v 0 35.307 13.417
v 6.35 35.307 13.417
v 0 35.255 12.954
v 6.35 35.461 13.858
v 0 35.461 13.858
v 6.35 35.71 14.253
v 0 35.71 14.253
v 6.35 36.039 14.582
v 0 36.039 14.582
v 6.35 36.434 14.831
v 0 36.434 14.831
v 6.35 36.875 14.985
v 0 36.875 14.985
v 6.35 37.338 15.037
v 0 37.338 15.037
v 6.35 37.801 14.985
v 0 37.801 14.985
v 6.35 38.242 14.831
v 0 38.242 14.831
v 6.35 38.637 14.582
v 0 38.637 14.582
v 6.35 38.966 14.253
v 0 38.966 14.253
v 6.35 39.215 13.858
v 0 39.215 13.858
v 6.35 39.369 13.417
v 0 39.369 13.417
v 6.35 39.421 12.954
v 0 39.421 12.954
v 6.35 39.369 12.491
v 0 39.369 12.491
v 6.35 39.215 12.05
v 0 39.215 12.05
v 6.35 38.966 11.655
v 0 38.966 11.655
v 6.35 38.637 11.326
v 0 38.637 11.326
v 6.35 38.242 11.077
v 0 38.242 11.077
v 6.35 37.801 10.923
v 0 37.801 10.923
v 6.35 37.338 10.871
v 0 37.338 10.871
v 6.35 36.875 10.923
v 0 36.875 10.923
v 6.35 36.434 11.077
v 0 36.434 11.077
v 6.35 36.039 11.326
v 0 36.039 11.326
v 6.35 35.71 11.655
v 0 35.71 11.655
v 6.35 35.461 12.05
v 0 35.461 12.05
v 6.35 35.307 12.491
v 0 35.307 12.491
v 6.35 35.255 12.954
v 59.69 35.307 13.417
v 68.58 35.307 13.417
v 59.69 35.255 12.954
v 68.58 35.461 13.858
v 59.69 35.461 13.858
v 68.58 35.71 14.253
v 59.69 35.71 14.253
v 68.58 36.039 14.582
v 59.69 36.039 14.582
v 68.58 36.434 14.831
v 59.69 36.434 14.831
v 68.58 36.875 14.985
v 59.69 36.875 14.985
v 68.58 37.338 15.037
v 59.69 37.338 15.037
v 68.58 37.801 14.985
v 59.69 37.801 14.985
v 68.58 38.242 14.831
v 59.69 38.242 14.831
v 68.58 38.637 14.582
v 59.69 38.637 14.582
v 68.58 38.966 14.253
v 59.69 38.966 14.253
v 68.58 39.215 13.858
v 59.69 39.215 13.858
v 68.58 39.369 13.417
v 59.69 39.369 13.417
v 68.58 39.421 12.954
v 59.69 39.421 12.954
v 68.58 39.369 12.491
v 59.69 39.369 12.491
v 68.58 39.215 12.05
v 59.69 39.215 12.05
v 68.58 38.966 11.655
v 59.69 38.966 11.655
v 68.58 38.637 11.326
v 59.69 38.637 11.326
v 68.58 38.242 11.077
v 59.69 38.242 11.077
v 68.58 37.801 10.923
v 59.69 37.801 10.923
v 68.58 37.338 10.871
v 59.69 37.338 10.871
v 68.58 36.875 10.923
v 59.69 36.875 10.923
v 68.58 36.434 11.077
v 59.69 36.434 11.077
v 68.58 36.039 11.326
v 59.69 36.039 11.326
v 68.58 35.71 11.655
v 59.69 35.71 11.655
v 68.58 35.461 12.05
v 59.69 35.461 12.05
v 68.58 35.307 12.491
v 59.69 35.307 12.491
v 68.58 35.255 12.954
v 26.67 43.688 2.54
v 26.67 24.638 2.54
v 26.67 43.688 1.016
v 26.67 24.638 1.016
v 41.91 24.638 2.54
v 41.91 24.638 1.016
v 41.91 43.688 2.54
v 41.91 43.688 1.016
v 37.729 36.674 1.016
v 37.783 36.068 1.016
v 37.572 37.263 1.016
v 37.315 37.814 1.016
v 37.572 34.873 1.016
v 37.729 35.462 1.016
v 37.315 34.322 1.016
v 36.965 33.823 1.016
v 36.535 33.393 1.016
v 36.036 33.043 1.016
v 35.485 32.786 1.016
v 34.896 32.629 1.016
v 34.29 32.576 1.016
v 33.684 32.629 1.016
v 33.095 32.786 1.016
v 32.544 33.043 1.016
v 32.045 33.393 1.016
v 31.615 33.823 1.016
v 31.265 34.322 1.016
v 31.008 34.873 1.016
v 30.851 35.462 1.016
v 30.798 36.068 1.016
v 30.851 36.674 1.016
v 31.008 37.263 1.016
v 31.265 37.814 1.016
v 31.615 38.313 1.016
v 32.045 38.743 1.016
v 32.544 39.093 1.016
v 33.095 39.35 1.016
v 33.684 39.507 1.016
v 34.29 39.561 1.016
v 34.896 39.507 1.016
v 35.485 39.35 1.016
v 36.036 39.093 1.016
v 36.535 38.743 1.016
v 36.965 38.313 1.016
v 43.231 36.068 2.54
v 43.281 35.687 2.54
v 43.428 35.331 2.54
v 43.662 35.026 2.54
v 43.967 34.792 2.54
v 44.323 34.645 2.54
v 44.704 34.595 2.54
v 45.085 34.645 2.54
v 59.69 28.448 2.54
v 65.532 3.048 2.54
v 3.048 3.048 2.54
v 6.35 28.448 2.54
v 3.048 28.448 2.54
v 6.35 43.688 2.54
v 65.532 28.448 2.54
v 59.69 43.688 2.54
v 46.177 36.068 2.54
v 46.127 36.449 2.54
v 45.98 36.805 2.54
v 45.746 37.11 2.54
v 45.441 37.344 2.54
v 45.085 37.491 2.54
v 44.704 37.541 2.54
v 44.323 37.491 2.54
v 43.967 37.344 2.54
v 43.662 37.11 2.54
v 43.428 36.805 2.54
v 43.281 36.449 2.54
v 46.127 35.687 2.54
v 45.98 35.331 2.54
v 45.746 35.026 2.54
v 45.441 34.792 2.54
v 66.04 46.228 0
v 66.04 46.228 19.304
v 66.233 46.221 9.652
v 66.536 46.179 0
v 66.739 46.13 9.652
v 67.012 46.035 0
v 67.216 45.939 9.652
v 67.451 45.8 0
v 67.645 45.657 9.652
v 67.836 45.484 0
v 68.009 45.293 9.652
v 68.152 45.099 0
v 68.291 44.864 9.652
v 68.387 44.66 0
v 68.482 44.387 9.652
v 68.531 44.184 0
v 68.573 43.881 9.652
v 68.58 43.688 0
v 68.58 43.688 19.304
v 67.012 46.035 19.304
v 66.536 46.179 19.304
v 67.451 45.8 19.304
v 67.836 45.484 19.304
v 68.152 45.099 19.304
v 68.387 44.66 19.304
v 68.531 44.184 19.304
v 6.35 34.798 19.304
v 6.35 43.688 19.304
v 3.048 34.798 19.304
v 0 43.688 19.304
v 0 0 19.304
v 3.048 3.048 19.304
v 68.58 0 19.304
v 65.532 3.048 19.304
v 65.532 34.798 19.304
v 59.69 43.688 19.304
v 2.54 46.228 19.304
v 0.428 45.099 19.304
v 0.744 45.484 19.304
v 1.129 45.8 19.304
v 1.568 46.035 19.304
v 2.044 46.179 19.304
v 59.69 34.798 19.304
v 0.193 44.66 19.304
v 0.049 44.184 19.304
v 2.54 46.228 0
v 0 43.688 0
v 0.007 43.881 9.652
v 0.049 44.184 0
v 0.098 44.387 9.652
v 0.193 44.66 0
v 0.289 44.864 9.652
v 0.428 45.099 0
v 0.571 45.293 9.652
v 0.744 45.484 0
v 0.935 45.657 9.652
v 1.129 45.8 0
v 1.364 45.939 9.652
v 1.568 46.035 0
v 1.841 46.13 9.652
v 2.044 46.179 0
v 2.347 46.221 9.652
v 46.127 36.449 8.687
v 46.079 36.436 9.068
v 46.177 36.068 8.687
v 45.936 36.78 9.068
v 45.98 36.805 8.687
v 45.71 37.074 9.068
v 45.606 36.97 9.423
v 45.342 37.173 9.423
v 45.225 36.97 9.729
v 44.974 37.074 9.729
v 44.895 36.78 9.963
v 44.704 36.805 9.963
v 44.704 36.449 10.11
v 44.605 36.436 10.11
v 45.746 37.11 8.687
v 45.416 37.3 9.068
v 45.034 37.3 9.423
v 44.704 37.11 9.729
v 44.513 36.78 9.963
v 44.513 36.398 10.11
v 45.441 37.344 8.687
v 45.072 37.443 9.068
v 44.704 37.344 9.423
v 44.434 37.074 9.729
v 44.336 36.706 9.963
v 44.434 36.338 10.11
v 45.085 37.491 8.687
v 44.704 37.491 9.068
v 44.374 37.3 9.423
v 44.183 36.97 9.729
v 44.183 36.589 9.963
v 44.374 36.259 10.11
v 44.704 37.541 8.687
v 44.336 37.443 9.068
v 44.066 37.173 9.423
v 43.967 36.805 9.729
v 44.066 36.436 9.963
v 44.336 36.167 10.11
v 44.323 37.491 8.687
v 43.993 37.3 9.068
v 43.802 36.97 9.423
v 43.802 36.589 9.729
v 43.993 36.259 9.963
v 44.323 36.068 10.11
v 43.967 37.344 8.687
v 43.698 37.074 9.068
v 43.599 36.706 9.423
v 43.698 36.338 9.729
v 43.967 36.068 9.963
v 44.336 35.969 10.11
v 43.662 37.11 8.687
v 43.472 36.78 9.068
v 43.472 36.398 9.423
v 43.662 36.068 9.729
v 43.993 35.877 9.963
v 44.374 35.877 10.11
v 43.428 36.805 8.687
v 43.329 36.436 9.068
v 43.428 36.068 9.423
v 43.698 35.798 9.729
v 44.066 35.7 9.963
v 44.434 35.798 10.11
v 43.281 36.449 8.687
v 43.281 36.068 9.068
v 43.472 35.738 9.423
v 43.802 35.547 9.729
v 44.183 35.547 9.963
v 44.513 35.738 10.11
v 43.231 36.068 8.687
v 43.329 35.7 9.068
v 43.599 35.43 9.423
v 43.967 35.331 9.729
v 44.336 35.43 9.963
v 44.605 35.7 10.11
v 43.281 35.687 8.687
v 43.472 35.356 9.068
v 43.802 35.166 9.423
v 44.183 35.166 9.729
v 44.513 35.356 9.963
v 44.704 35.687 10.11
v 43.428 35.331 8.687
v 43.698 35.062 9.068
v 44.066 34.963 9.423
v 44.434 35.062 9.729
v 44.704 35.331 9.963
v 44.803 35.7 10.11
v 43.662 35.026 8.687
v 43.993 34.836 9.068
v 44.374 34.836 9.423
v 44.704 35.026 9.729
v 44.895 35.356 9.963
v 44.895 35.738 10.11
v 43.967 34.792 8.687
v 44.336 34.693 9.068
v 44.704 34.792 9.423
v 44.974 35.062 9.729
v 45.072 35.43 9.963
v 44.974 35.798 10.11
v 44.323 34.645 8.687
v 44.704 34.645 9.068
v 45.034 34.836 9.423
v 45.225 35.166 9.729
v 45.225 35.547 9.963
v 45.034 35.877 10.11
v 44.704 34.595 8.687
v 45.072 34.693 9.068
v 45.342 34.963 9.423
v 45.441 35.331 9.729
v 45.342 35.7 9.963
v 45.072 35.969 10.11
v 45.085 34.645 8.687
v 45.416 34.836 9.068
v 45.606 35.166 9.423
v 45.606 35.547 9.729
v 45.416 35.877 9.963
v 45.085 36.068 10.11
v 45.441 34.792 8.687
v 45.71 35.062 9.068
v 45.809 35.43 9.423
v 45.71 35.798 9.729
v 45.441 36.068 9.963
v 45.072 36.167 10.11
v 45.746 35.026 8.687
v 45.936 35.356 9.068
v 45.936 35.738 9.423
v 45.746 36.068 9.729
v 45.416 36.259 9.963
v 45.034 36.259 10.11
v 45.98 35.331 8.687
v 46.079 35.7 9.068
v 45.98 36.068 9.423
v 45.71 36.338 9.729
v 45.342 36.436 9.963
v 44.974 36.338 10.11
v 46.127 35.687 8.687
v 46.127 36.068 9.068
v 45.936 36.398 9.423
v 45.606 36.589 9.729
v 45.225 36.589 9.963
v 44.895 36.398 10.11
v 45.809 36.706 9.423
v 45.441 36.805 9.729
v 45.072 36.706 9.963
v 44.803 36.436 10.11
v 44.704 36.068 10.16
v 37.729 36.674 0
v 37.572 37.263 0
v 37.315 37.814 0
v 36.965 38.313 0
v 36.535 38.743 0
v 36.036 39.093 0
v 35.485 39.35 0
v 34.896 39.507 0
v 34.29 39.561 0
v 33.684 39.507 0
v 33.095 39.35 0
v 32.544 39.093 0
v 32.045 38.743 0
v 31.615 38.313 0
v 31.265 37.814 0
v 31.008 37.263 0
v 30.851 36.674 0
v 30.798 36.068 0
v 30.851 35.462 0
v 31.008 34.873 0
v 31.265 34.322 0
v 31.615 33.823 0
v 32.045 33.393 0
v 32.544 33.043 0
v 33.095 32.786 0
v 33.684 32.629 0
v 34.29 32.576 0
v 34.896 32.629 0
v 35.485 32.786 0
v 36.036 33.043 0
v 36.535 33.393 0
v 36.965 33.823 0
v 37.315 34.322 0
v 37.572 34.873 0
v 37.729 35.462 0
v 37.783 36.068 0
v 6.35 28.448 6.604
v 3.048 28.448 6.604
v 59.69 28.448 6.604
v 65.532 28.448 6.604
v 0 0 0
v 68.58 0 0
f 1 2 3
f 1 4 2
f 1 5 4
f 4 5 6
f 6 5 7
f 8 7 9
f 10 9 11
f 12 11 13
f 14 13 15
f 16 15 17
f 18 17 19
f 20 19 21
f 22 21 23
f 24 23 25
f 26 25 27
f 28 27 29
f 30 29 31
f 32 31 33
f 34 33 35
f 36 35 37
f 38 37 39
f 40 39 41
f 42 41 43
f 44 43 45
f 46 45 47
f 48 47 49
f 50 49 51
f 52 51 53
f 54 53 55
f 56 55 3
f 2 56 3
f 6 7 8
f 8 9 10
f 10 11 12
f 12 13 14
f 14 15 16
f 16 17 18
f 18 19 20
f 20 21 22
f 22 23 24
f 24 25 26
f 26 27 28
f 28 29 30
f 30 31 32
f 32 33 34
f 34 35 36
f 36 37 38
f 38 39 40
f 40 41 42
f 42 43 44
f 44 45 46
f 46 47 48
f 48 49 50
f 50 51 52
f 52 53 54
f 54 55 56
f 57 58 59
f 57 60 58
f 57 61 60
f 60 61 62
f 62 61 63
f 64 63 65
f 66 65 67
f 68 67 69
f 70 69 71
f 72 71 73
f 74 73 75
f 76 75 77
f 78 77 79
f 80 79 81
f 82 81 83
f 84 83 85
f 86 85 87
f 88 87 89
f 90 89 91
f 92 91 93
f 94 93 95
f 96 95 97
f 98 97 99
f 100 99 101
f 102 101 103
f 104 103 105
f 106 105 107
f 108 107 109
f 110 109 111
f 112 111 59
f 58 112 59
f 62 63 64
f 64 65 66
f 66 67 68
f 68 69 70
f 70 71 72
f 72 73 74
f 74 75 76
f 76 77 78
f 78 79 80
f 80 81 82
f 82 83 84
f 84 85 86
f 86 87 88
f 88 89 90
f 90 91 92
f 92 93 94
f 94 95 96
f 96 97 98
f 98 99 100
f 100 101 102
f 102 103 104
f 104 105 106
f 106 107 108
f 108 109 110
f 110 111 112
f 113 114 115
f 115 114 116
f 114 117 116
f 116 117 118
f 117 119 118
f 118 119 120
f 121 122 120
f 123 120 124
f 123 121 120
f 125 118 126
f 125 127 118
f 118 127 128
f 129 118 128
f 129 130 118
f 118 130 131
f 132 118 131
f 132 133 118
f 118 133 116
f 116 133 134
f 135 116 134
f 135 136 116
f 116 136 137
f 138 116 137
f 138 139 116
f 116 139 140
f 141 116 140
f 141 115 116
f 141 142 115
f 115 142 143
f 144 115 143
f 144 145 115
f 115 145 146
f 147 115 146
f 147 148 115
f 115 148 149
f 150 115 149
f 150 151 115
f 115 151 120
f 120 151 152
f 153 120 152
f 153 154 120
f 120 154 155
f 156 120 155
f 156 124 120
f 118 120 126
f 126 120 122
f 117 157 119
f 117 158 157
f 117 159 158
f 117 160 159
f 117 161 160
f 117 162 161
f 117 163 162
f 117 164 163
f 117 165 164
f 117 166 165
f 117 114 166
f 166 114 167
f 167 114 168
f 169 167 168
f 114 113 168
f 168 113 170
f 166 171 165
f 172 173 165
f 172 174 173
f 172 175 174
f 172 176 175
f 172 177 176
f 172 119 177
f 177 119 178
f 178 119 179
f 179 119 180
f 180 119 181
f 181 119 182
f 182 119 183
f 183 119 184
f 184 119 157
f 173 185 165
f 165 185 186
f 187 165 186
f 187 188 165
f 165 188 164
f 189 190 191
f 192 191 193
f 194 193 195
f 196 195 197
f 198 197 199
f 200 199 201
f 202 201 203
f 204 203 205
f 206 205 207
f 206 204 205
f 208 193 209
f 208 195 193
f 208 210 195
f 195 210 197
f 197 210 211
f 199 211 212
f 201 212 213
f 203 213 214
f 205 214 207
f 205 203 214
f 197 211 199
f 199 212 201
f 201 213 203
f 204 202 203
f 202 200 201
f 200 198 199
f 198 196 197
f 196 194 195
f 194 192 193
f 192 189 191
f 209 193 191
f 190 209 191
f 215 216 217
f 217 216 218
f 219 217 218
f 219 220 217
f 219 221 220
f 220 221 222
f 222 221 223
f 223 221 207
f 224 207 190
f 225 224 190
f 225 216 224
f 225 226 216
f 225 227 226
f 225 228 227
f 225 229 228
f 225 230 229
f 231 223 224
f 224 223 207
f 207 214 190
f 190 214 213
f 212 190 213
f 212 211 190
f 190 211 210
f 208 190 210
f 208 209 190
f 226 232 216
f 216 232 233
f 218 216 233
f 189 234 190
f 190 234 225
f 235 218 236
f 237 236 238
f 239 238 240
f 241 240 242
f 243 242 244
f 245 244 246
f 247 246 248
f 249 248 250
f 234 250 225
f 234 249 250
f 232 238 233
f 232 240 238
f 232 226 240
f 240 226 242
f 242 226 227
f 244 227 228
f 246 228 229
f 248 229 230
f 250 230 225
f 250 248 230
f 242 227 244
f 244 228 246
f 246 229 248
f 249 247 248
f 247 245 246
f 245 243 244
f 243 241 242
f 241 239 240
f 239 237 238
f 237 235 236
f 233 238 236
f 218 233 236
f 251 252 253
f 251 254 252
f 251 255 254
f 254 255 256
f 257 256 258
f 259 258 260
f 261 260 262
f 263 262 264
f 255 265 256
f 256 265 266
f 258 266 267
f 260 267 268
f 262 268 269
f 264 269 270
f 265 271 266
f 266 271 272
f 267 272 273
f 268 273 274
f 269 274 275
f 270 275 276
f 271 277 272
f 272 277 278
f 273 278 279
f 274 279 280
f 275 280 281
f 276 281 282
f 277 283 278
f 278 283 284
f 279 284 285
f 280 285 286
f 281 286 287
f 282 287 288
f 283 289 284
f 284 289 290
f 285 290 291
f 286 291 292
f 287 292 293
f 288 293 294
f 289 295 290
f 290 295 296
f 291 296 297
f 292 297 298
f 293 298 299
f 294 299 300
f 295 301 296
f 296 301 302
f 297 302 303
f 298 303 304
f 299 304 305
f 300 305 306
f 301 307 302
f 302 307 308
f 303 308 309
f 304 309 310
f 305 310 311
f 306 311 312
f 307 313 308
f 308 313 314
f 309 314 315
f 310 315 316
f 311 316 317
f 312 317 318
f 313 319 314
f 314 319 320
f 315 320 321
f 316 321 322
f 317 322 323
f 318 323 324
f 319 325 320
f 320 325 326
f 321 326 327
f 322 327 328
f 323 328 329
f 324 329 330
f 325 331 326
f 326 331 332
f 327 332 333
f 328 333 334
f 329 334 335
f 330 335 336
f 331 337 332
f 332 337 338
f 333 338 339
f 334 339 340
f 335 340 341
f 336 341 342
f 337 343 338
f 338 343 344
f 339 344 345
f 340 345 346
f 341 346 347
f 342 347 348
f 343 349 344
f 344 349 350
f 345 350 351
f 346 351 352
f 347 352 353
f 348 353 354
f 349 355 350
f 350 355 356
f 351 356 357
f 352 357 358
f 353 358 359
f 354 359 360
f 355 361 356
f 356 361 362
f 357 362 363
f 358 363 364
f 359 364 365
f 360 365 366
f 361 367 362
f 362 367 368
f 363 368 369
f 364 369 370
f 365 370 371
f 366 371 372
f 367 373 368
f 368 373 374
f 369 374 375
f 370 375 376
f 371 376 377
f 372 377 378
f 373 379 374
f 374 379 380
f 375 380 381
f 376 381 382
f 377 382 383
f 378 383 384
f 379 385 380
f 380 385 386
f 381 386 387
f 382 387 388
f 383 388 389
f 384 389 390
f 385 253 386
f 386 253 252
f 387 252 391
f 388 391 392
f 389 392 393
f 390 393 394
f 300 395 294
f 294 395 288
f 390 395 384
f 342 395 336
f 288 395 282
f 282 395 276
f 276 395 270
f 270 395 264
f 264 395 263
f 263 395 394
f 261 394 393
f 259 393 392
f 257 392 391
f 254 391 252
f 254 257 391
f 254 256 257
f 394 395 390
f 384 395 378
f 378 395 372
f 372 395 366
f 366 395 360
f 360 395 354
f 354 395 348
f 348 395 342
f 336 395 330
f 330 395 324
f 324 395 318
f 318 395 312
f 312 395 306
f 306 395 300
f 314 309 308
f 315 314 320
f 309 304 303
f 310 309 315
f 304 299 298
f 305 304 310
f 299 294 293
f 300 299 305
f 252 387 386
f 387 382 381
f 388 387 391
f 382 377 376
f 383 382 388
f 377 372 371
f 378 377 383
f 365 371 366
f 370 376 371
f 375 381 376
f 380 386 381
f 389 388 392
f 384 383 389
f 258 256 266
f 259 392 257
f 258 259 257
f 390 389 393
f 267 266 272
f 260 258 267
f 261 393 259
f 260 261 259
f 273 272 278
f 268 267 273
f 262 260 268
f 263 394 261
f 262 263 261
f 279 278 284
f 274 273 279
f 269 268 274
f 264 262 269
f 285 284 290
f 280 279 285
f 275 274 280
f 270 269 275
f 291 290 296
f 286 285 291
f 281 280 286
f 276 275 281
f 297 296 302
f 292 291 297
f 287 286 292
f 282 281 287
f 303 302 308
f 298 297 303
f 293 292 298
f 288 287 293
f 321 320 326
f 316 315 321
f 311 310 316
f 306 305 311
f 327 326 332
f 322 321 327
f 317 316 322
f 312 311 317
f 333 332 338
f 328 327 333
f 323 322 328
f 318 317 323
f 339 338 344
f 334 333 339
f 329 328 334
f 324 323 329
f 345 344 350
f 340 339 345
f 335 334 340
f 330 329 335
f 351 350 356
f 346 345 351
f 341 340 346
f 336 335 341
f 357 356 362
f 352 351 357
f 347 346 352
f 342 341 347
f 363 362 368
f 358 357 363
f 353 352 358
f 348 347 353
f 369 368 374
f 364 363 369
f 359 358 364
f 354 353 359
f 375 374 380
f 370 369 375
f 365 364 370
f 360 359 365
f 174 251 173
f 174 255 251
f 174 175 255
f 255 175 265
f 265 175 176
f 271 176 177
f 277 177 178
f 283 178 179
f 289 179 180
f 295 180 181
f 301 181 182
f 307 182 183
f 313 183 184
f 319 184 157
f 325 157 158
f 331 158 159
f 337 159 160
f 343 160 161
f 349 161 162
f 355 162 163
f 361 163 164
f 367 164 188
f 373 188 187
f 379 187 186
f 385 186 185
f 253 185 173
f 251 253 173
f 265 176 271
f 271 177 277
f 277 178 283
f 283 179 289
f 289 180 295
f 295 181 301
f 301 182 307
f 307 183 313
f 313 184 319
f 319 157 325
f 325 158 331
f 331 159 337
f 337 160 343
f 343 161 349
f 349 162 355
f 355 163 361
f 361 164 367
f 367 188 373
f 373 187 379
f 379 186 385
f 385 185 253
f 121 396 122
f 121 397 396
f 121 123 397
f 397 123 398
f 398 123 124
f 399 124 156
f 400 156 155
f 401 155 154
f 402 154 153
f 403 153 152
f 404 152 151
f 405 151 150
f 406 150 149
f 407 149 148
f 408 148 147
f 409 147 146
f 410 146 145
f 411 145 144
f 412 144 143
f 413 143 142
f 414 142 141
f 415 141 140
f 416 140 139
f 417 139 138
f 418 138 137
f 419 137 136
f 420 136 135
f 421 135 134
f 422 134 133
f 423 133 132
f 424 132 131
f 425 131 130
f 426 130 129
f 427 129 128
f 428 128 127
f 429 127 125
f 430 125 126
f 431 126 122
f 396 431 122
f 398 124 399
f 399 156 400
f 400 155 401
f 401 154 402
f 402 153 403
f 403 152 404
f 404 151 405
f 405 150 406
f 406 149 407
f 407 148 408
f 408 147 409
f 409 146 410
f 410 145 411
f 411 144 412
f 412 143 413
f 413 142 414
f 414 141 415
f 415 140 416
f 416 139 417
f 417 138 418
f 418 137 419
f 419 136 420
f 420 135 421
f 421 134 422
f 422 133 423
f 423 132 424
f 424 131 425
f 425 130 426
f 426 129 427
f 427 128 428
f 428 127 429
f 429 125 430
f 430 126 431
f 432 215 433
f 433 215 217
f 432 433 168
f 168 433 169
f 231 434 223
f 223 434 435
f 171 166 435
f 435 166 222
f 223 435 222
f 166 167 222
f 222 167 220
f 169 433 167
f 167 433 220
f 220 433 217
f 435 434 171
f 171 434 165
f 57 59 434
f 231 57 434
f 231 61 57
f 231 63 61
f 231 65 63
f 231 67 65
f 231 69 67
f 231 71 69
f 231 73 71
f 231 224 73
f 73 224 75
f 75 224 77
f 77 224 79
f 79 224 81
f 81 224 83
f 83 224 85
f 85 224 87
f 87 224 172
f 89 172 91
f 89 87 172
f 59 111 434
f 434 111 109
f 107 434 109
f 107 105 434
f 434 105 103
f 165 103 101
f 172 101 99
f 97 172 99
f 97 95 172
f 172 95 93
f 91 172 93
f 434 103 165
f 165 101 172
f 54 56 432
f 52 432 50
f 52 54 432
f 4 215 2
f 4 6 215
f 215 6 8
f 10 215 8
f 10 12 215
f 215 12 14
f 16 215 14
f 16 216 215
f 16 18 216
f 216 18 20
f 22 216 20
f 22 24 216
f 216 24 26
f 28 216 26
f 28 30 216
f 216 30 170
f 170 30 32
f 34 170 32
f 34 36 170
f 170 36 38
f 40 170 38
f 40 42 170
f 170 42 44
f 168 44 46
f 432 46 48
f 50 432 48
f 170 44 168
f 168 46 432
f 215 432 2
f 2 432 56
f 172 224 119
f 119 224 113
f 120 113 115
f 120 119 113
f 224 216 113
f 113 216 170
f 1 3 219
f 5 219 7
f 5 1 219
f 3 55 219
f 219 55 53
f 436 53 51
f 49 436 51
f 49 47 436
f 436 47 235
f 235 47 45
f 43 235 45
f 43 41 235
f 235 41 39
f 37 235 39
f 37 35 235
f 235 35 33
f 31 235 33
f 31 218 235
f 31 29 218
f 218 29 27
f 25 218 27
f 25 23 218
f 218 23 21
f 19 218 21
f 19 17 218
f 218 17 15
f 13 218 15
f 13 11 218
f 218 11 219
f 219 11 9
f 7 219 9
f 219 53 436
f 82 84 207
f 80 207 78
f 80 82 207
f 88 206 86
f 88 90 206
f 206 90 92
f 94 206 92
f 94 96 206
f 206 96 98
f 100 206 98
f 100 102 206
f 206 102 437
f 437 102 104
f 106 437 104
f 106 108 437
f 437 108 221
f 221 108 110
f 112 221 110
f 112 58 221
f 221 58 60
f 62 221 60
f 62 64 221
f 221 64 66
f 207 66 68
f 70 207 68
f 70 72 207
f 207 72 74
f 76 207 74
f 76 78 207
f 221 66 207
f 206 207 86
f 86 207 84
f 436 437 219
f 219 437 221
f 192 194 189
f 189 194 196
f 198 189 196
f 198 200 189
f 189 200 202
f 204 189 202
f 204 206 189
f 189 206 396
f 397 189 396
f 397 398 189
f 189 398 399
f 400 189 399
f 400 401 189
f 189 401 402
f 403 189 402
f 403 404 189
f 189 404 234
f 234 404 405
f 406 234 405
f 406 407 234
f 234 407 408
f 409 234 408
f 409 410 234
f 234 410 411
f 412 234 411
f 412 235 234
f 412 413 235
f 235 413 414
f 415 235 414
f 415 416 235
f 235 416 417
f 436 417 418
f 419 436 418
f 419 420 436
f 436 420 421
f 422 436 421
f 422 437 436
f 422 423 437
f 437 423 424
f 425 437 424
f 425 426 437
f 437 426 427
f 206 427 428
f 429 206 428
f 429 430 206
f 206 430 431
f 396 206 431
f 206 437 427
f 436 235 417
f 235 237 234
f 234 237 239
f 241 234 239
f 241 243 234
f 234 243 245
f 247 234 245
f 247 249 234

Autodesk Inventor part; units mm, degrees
ref_plane "YZ Plane" through (0, 0, 0) normal (1, 0, 0) x (0, 1, 0)
ref_plane "XZ Plane" through (0, 0, 0) normal (0, 1, 0) x (-1, 0, 0)
ref_plane "XY Plane" through (0, 0, 0) normal (0, 0, 1) x (1, 0, 0)
sketch "Sketch1" plane through (0, 0, 0) normal (0, 0, 1) x (1, 0, 0)
  line L0 (0, 0) -> (68.58, 0)
  line L1 (68.58, 0) -> (68.58, 46.228)
  line L2 (68.58, 46.228) -> (0, 46.228)
  line L3 (0, 46.228) -> (0, 0)
  dimension "d0" = 68.58
  dimension "d1" = 46.228
extrude "Extrusion1" add sketch "Sketch1" along normal blind 2.54
sketch "Sketch2" plane through (0, 0, 2.54) normal (0, 0, 1) x (1, 0, 0)
  line L0 (0, 46.228) -> (0, 0) projected
  line L1 (0, 46.228) -> (68.58, 46.228)
  line L2 (68.58, 46.228) -> (68.58, 0)
  line L3 (68.58, 0) -> (0, 0)
  line L4 (0, 0) -> (0, 46.228)
  line L5 (6.35, 43.688) -> (59.69, 43.688)
  line L6 (59.69, 43.688) -> (59.69, 28.448)
  line L7 (59.69, 28.448) -> (6.35, 28.448)
  line L8 (6.35, 28.448) -> (6.35, 43.688)
  line L9 (3.048, 28.448) -> (65.532, 28.448)
  line L10 (65.532, 28.448) -> (65.532, 3.048)
  line L11 (65.532, 3.048) -> (3.048, 3.048)
  line L12 (3.048, 3.048) -> (3.048, 28.448)
  dimension "d4" = 62.484
  dimension "d5" = 53.34
  dimension "d6" = 15.24
  dimension "d7" = 25.4
  dimension "d8" = 3.048
  dimension "d9" = 3.048
  dimension "d10" = 0
  dimension "d13" = 6.35
extrude "Extrusion2" add sketch "Sketch2" along normal blind 16.764
chamfer "Chamfer1" distance 6.35 distance2 12.7 1 edges at (62.611, 28.448, 19.304) measured on face at (23.876, 1.016, 19.304)
chamfer "Chamfer2" distance 6.35 distance2 12.7 1 edges at (4.699, 28.448, 19.304) measured on face at (23.876, 1.016, 19.304)
sketch "Sketch3" plane through (0, 0, 2.54) normal (0, 0, 1) x (1, 0, 0)
  circle A0 centre (34.29, 36.068) radius 3.4925
  line L0 (0, 0) -> (68.58, 0) projected
  line L1 (0, 46.228) -> (0, 0) projected
  line L2 (68.58, 46.228) -> (0, 46.228) projected
  line L3 (68.58, 0) -> (68.58, 46.228) projected
  dimension "d22" = 10.16
  dimension "d23" = 34.29
  dimension "d24" = 6.985
extrude "Extrusion3" cut sketch "Sketch3" against normal up to surface (2.54 mm away) contours A0
sketch "Sketch4" plane through (0, 0, 2.54) normal (0, 0, 1) x (1, 0, 0)
  line L0 (59.69, 28.448) -> (59.69, 43.688) projected
  line L1 (59.69, 43.688) -> (6.35, 43.688) projected
  circle A0 centre (44.704, 36.068) radius 1.4732
  point P0 (0, 0)
  dimension "d27" = 2.9464
  dimension "d28" = 7.62
  dimension "d29" = 14.986
extrude "Extrusion4" add sketch "Sketch4" along normal blind 7.62
fillet "Fillet1" radius 1.4732 1 edges at (43.2308, 36.068, 10.16)
fillet "Fillet2" radius 2.54 2 edges at (0, 46.228, 9.652) (68.58, 46.228, 9.652)
sketch "Sketch5" plane through (0, 0, 2.54) normal (0, 0, 1) x (1, 0, 0)
  circle A0 centre (34.29, 36.068) radius 3.4925 projected
  line L0 (26.67, 43.688) -> (41.91, 43.688)
  line L1 (41.91, 43.688) -> (41.91, 24.638)
  line L2 (41.91, 24.638) -> (26.67, 24.638)
  line L3 (26.67, 24.638) -> (26.67, 43.688)
  point P0 (0, 0)
  dimension "d34" = 19.05
  dimension "d35" = 15.24
  dimension "d36" = 7.62
  dimension "d37" = 7.62
extrude "Extrusion5" cut sketch "Sketch5" against normal blind 1.524
hole "Hole1" at (68.58, 37.338, 12.954) direction (-1, 0, 0) diameter 4.1656 end through all
equation "\"d9\" = d8"
properties part number "Case_Cutout"
